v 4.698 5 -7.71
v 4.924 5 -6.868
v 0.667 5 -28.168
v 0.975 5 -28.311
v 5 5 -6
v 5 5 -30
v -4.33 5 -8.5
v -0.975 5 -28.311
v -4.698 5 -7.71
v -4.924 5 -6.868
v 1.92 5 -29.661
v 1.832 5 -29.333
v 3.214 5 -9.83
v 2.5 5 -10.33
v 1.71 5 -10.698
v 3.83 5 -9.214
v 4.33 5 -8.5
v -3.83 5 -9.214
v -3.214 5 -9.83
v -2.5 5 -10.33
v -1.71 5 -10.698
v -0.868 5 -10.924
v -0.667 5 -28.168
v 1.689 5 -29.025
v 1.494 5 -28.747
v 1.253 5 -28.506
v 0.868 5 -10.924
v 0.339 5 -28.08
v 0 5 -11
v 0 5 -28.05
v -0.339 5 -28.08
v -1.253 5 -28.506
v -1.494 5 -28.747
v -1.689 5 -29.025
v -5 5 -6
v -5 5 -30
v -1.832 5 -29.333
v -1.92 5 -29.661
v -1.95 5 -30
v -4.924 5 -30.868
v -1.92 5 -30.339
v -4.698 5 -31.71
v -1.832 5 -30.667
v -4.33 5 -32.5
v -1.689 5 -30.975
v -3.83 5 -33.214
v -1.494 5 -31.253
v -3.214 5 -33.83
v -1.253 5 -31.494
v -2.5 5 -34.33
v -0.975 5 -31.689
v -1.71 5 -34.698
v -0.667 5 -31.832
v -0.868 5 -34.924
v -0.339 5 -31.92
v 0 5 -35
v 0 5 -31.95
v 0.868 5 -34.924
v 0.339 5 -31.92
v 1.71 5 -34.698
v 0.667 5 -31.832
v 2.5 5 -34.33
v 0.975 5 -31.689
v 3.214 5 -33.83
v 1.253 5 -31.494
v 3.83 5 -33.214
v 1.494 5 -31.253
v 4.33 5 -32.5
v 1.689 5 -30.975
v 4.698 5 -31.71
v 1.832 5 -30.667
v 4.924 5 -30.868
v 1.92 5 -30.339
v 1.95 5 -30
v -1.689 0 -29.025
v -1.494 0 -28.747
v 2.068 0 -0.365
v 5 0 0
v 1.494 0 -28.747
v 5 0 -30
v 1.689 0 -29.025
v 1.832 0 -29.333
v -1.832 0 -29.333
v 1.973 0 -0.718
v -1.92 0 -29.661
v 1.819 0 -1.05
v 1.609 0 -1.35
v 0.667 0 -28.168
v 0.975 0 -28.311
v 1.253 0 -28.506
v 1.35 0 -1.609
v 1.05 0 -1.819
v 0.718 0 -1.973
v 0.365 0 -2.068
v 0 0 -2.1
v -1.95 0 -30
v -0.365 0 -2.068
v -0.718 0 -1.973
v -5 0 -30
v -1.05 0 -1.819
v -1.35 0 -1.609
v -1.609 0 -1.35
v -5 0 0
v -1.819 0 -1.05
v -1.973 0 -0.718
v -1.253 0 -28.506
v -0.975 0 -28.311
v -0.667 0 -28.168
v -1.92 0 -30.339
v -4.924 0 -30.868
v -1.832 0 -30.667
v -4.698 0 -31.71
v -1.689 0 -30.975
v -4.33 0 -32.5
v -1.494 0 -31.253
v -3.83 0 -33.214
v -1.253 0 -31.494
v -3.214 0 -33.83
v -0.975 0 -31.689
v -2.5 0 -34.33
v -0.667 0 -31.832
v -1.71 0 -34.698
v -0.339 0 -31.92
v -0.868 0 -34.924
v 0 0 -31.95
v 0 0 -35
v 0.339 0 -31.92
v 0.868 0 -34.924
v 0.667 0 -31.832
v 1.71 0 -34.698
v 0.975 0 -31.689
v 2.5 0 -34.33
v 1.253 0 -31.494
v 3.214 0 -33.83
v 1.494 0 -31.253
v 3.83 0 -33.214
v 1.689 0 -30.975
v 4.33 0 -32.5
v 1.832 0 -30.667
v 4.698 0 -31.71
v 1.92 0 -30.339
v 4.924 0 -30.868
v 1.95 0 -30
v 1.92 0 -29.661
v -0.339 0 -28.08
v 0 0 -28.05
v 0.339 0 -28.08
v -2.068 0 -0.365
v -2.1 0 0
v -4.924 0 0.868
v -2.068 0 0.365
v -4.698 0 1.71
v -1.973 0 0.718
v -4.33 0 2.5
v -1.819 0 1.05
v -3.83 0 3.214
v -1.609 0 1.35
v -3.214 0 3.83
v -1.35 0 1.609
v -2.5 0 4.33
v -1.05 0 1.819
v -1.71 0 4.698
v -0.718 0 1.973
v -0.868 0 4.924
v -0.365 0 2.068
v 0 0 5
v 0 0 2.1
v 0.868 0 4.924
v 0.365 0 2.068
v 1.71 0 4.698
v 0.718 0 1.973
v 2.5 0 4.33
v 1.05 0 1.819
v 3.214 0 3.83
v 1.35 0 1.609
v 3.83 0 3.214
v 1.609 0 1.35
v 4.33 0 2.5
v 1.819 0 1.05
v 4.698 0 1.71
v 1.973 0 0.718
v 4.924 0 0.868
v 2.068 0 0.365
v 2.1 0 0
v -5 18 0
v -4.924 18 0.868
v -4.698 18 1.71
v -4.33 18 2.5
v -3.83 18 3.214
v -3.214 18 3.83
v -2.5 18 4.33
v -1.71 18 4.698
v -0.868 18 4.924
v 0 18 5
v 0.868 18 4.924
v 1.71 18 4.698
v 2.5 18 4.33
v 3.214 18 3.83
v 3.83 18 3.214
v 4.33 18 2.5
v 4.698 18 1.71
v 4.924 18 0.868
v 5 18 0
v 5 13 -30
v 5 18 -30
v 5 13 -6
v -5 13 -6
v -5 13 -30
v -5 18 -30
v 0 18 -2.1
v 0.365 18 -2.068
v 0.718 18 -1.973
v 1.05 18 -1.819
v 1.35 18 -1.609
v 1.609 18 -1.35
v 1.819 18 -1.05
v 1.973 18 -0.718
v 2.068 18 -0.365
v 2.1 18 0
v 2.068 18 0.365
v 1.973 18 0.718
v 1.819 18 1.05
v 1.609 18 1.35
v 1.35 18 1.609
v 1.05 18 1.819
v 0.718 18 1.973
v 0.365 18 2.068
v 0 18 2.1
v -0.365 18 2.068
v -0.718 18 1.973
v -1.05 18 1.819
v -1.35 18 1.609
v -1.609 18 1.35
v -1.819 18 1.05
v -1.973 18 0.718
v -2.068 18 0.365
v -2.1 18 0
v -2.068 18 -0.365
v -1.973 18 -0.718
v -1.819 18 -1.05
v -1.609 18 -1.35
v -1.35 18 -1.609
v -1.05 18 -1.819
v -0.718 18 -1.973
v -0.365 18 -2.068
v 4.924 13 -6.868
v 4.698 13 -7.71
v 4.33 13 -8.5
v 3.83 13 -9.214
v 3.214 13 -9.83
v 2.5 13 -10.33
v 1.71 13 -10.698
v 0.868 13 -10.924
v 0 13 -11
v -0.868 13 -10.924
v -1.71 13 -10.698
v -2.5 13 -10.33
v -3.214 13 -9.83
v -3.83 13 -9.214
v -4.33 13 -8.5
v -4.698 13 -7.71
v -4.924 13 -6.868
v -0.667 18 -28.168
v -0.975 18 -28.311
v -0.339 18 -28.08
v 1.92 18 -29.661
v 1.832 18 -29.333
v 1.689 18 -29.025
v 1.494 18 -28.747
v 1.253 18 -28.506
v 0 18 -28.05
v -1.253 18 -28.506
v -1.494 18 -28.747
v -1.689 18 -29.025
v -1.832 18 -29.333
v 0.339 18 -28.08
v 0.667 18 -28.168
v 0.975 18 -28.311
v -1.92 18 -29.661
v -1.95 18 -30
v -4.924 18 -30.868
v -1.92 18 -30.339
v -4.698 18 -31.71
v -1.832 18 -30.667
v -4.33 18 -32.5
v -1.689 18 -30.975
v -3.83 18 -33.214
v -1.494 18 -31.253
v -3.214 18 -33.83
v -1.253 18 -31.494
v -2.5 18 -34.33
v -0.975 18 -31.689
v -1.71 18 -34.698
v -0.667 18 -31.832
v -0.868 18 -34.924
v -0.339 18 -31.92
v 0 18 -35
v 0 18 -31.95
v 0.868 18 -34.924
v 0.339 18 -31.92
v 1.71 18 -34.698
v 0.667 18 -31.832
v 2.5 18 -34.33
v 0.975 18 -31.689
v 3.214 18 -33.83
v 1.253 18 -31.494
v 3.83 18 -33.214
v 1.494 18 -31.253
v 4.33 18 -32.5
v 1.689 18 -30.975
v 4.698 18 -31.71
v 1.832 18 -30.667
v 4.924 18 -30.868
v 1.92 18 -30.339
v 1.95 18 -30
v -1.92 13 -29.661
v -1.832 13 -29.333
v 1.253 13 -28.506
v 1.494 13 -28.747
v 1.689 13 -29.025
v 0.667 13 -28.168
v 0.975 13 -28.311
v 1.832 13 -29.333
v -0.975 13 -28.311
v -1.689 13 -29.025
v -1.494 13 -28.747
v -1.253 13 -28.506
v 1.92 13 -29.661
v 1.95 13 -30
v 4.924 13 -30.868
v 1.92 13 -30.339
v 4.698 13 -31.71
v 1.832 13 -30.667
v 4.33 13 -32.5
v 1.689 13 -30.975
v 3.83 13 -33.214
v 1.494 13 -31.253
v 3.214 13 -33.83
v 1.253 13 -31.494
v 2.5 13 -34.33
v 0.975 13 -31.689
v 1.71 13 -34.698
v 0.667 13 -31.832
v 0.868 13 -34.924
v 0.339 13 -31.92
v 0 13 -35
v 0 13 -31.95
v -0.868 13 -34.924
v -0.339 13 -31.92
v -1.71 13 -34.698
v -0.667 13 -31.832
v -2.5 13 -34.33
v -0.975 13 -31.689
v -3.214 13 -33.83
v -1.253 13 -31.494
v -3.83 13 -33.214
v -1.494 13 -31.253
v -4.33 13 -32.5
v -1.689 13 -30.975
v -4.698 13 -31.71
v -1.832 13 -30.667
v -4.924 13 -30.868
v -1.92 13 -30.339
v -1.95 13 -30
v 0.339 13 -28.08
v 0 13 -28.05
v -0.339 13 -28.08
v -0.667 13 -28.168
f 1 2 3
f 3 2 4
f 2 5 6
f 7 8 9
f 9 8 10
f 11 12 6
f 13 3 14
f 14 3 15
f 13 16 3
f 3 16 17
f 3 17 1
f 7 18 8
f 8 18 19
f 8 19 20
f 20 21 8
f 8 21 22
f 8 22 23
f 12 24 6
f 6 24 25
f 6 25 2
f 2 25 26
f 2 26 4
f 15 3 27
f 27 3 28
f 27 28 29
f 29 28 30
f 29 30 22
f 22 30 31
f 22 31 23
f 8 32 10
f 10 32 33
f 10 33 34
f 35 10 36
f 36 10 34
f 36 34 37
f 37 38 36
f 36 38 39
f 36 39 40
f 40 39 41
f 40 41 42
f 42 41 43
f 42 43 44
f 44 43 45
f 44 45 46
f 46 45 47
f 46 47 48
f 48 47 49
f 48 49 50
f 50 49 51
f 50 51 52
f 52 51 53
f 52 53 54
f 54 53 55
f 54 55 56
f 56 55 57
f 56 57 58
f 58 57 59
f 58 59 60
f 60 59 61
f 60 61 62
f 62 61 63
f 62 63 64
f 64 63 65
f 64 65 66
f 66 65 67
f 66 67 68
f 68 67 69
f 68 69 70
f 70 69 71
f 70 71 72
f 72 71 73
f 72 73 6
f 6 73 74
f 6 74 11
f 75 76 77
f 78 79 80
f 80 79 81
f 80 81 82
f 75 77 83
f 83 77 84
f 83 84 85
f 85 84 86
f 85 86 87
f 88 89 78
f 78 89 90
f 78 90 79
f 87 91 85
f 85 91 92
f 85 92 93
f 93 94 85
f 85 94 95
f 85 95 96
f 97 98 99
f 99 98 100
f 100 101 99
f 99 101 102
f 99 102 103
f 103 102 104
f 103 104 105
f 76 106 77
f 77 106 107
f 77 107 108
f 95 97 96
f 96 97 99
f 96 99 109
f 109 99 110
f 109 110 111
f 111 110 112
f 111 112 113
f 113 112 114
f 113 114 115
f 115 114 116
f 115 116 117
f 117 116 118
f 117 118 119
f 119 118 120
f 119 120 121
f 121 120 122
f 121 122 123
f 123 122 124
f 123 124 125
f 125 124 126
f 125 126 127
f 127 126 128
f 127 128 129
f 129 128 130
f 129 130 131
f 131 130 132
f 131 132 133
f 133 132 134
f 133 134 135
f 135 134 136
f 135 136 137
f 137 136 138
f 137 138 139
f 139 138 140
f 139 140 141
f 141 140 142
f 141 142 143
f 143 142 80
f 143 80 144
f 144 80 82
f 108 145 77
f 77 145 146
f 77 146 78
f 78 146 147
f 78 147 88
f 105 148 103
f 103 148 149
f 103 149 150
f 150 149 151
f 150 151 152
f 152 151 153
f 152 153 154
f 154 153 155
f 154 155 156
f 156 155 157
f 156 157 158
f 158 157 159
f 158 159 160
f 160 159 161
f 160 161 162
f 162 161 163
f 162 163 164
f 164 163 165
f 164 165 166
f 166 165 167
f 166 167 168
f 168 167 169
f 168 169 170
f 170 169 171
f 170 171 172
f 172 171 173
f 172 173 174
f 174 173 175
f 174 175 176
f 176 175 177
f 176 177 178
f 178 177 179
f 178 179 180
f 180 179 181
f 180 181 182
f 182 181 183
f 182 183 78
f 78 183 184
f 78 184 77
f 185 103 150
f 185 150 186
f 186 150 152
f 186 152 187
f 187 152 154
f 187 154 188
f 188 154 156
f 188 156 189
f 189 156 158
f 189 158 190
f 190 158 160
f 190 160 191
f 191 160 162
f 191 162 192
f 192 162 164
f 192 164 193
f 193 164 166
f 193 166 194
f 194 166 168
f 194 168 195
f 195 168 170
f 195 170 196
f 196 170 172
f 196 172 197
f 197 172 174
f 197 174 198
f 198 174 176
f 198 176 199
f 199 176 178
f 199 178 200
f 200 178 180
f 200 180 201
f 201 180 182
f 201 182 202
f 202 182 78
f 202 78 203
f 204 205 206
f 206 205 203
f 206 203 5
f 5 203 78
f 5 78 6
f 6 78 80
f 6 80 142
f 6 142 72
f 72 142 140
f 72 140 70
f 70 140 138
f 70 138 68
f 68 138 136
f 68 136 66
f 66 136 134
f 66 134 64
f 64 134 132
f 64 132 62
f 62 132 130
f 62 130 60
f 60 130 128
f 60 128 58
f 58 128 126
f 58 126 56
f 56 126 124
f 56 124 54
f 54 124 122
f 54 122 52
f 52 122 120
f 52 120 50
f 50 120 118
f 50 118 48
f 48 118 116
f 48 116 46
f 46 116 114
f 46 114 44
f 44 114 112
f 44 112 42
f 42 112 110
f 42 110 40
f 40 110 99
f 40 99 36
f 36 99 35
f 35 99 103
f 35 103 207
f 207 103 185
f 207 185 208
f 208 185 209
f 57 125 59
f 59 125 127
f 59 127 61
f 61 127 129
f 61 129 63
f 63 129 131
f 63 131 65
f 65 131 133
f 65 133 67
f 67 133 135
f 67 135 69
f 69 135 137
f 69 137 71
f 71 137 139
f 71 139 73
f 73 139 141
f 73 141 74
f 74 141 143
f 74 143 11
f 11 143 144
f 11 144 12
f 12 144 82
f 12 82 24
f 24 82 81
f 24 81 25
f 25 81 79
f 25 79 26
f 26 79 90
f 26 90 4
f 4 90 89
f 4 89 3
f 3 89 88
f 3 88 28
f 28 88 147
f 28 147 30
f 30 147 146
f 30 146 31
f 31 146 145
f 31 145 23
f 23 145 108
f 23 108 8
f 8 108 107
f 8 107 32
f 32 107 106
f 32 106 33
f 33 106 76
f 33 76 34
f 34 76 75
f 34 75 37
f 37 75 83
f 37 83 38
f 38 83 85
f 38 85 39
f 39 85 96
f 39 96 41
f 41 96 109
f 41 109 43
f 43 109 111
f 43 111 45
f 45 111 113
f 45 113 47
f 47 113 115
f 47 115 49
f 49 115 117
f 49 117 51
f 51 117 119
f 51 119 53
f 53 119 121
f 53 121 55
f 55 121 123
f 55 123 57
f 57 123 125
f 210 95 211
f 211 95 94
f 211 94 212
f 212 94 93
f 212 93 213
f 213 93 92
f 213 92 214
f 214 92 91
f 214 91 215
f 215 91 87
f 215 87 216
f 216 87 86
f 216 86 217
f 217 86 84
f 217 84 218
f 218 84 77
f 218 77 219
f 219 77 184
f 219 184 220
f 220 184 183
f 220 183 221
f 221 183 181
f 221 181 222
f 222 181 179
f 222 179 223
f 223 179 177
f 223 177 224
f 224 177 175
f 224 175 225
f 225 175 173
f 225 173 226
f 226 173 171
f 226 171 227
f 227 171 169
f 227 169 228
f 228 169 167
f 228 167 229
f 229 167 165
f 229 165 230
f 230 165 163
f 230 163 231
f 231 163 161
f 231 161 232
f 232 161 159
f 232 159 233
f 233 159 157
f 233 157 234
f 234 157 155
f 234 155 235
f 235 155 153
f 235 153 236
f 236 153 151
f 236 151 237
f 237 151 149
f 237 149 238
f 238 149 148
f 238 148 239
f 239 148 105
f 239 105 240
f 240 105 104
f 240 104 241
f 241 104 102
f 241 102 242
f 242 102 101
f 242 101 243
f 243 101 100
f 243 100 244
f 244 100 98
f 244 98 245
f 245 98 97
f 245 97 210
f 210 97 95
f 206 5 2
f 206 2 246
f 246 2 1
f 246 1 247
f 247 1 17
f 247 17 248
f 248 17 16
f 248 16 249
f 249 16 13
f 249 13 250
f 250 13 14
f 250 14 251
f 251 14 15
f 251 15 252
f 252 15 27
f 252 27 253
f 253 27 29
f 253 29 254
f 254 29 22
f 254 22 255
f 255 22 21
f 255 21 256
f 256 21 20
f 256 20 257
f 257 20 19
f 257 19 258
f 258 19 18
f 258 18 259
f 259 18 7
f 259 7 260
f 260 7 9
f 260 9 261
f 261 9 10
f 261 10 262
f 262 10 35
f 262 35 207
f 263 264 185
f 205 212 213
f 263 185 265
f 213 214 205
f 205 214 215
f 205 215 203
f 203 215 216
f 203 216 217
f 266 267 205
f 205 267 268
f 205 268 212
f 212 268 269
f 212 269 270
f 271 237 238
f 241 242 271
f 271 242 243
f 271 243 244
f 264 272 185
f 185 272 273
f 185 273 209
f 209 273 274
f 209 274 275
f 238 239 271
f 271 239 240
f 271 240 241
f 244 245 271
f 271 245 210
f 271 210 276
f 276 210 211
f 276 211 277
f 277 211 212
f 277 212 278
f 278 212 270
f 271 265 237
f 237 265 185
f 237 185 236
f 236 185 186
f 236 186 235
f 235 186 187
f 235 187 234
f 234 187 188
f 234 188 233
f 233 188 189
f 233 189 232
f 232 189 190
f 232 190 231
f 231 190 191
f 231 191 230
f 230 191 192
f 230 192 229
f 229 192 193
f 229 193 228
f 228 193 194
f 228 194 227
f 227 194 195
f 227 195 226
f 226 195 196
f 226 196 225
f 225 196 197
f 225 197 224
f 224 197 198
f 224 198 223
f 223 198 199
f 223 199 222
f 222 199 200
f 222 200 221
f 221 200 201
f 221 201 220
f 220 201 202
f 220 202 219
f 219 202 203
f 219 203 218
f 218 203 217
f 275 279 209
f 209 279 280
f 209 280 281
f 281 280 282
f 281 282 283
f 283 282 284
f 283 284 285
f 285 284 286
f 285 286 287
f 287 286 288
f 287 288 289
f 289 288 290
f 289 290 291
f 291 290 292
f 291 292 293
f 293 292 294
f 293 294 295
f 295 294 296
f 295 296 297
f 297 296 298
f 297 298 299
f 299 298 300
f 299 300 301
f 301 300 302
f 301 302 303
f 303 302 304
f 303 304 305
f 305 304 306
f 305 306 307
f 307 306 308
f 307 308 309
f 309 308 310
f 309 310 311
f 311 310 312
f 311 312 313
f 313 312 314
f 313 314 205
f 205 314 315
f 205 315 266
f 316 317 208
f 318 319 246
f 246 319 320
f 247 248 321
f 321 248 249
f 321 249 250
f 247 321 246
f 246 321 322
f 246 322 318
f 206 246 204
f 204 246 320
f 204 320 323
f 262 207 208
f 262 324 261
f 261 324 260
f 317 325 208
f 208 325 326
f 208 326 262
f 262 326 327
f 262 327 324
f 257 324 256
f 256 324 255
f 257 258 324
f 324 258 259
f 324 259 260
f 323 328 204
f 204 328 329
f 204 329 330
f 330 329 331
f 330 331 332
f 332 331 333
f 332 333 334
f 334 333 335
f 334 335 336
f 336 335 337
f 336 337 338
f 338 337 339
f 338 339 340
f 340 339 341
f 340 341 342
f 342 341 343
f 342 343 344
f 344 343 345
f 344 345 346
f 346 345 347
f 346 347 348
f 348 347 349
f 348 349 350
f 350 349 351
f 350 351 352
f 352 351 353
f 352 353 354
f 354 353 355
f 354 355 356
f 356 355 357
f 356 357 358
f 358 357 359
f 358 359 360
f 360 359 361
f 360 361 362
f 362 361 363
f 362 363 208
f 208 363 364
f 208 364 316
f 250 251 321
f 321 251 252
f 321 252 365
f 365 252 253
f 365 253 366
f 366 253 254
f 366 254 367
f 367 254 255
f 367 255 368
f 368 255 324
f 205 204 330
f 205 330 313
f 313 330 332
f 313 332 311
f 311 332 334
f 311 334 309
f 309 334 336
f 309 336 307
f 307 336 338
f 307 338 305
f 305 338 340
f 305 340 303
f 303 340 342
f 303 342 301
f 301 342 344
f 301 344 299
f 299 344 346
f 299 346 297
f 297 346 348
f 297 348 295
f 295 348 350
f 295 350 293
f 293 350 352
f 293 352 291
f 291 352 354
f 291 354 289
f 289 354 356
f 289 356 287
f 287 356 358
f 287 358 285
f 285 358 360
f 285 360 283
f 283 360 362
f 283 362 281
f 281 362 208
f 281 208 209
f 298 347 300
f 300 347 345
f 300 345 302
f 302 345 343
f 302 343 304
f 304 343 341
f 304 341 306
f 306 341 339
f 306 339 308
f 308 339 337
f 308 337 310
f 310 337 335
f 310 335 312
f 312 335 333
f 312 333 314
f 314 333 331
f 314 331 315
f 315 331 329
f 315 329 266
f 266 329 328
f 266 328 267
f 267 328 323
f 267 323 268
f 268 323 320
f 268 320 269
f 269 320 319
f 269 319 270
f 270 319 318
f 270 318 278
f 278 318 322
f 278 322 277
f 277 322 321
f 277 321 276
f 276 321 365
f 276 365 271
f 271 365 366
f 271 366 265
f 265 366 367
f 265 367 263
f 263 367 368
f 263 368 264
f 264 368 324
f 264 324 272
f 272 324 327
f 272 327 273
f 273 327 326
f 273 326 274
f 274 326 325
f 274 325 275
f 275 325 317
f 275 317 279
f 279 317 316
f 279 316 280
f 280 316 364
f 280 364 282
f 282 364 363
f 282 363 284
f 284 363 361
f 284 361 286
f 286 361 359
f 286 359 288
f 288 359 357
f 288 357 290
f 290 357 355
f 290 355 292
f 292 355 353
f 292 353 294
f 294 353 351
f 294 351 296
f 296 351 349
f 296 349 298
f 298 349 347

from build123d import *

# Parameters (mm, degrees)
ESQUISSE1_R        = 1.95
ESQUISSE1_R_2      = 2.05
BOSS_EXTRU_1_DEPTH = 5
ESQUISSE2_R        = 2.05
BOSS_EXTRU_2_DEPTH = 8
BOSS_EXTRU_3_START = 8
ESQUISSE3_R        = 1.95
ESQUISSE3_R_2      = 2.05
BOSS_EXTRU_3_DEPTH = 5


with BuildPart() as part:
    # Esquisse1 → Boss.-Extru.1 (new body)
    with BuildSketch(Plane(origin=(0, 0, 0), x_dir=(1, 0, 0), z_dir=(0, 1, 0))):
        with BuildLine():
            Line((-5, 0), (-5, 30))
            ThreePointArc((-5, 30), (0, 35), (5, 30))
            Line((5, 30), (5, 0))
            ThreePointArc((5, 0), (0, -5), (-5, 0))
        make_face()
        with Locations(Location((0, 30, 0), (0, 0, 270))):
            Circle(ESQUISSE1_R, mode=Mode.SUBTRACT)
        with Locations(Location((0, 0, 0), (0, 0, 270))):
            Circle(ESQUISSE1_R_2, mode=Mode.SUBTRACT)
    extrude(amount=BOSS_EXTRU_1_DEPTH)

    # Esquisse2 → Boss.-Extru.2 (add)
    with BuildSketch(Plane(origin=(0, 5, 0), x_dir=(1, 0, 0), z_dir=(0, 1, 0))):
        with BuildLine():
            Line((-5, 0), (-5, 6))
            ThreePointArc((-5, 6), (0, 11), (5, 6))
            Line((5, 6), (5, 0))
            ThreePointArc((5, 0), (0, -5), (-5, 0))
        make_face()
        with Locations(Location((0, 0, 0), (0, 0, 270))):
            Circle(ESQUISSE2_R, mode=Mode.SUBTRACT)
    extrude(amount=BOSS_EXTRU_2_DEPTH)

    # Esquisse3 → Boss.-Extru.3 (add)
    # profile 1 of 2: a face of its own
    with BuildSketch(Plane(origin=(0, 5, 0), x_dir=(1, 0, 0), z_dir=(0, 1, 0)).offset(BOSS_EXTRU_3_START)):
        with BuildLine():
            Line((-5, 30), (-5, 6))
            ThreePointArc((-5, 6), (0, 11), (5, 6))
            Line((5, 6), (5, 30))
            ThreePointArc((5, 30), (0, 35), (-5, 30))
        make_face()
        with Locations(Location((0, 30, 0), (0, 0, 270))):
            Circle(ESQUISSE3_R, mode=Mode.SUBTRACT)
    # profile 2 of 2: a face of its own
    with BuildSketch(Plane(origin=(0, 5, 0), x_dir=(1, 0, 0), z_dir=(0, 1, 0)).offset(BOSS_EXTRU_3_START)):
        with BuildLine():
            Line((-5, 6), (-5, 0))
            ThreePointArc((-5, 0), (0, -5), (5, 0))
            Line((5, 0), (5, 6))
            ThreePointArc((5, 6), (0, 11), (-5, 6))
        make_face()
        with Locations(Location((0, 0, 0), (0, 0, 270))):
            Circle(ESQUISSE3_R_2, mode=Mode.SUBTRACT)
    extrude(amount=BOSS_EXTRU_3_DEPTH)


solid = part.part
